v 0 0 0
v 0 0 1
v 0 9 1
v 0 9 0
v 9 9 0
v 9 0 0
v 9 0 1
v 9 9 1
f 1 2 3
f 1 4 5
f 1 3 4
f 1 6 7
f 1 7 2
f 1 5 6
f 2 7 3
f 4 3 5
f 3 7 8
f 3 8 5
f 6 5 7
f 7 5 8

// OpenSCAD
/* Warning, this is a very basic generator with a lot of approximation 
input data : [VQFN, TZB, 9x9x1.0mm, 64, , A, C04-21541A]
generated by com.zoubworld.electronics.cad.model3d.Basic
Date : Sun Feb 15 10:50:49 CET 2026
*/

//body
color("black")
translate([0,0,0])
cube([9.0,9.0,1.0], center=false);
